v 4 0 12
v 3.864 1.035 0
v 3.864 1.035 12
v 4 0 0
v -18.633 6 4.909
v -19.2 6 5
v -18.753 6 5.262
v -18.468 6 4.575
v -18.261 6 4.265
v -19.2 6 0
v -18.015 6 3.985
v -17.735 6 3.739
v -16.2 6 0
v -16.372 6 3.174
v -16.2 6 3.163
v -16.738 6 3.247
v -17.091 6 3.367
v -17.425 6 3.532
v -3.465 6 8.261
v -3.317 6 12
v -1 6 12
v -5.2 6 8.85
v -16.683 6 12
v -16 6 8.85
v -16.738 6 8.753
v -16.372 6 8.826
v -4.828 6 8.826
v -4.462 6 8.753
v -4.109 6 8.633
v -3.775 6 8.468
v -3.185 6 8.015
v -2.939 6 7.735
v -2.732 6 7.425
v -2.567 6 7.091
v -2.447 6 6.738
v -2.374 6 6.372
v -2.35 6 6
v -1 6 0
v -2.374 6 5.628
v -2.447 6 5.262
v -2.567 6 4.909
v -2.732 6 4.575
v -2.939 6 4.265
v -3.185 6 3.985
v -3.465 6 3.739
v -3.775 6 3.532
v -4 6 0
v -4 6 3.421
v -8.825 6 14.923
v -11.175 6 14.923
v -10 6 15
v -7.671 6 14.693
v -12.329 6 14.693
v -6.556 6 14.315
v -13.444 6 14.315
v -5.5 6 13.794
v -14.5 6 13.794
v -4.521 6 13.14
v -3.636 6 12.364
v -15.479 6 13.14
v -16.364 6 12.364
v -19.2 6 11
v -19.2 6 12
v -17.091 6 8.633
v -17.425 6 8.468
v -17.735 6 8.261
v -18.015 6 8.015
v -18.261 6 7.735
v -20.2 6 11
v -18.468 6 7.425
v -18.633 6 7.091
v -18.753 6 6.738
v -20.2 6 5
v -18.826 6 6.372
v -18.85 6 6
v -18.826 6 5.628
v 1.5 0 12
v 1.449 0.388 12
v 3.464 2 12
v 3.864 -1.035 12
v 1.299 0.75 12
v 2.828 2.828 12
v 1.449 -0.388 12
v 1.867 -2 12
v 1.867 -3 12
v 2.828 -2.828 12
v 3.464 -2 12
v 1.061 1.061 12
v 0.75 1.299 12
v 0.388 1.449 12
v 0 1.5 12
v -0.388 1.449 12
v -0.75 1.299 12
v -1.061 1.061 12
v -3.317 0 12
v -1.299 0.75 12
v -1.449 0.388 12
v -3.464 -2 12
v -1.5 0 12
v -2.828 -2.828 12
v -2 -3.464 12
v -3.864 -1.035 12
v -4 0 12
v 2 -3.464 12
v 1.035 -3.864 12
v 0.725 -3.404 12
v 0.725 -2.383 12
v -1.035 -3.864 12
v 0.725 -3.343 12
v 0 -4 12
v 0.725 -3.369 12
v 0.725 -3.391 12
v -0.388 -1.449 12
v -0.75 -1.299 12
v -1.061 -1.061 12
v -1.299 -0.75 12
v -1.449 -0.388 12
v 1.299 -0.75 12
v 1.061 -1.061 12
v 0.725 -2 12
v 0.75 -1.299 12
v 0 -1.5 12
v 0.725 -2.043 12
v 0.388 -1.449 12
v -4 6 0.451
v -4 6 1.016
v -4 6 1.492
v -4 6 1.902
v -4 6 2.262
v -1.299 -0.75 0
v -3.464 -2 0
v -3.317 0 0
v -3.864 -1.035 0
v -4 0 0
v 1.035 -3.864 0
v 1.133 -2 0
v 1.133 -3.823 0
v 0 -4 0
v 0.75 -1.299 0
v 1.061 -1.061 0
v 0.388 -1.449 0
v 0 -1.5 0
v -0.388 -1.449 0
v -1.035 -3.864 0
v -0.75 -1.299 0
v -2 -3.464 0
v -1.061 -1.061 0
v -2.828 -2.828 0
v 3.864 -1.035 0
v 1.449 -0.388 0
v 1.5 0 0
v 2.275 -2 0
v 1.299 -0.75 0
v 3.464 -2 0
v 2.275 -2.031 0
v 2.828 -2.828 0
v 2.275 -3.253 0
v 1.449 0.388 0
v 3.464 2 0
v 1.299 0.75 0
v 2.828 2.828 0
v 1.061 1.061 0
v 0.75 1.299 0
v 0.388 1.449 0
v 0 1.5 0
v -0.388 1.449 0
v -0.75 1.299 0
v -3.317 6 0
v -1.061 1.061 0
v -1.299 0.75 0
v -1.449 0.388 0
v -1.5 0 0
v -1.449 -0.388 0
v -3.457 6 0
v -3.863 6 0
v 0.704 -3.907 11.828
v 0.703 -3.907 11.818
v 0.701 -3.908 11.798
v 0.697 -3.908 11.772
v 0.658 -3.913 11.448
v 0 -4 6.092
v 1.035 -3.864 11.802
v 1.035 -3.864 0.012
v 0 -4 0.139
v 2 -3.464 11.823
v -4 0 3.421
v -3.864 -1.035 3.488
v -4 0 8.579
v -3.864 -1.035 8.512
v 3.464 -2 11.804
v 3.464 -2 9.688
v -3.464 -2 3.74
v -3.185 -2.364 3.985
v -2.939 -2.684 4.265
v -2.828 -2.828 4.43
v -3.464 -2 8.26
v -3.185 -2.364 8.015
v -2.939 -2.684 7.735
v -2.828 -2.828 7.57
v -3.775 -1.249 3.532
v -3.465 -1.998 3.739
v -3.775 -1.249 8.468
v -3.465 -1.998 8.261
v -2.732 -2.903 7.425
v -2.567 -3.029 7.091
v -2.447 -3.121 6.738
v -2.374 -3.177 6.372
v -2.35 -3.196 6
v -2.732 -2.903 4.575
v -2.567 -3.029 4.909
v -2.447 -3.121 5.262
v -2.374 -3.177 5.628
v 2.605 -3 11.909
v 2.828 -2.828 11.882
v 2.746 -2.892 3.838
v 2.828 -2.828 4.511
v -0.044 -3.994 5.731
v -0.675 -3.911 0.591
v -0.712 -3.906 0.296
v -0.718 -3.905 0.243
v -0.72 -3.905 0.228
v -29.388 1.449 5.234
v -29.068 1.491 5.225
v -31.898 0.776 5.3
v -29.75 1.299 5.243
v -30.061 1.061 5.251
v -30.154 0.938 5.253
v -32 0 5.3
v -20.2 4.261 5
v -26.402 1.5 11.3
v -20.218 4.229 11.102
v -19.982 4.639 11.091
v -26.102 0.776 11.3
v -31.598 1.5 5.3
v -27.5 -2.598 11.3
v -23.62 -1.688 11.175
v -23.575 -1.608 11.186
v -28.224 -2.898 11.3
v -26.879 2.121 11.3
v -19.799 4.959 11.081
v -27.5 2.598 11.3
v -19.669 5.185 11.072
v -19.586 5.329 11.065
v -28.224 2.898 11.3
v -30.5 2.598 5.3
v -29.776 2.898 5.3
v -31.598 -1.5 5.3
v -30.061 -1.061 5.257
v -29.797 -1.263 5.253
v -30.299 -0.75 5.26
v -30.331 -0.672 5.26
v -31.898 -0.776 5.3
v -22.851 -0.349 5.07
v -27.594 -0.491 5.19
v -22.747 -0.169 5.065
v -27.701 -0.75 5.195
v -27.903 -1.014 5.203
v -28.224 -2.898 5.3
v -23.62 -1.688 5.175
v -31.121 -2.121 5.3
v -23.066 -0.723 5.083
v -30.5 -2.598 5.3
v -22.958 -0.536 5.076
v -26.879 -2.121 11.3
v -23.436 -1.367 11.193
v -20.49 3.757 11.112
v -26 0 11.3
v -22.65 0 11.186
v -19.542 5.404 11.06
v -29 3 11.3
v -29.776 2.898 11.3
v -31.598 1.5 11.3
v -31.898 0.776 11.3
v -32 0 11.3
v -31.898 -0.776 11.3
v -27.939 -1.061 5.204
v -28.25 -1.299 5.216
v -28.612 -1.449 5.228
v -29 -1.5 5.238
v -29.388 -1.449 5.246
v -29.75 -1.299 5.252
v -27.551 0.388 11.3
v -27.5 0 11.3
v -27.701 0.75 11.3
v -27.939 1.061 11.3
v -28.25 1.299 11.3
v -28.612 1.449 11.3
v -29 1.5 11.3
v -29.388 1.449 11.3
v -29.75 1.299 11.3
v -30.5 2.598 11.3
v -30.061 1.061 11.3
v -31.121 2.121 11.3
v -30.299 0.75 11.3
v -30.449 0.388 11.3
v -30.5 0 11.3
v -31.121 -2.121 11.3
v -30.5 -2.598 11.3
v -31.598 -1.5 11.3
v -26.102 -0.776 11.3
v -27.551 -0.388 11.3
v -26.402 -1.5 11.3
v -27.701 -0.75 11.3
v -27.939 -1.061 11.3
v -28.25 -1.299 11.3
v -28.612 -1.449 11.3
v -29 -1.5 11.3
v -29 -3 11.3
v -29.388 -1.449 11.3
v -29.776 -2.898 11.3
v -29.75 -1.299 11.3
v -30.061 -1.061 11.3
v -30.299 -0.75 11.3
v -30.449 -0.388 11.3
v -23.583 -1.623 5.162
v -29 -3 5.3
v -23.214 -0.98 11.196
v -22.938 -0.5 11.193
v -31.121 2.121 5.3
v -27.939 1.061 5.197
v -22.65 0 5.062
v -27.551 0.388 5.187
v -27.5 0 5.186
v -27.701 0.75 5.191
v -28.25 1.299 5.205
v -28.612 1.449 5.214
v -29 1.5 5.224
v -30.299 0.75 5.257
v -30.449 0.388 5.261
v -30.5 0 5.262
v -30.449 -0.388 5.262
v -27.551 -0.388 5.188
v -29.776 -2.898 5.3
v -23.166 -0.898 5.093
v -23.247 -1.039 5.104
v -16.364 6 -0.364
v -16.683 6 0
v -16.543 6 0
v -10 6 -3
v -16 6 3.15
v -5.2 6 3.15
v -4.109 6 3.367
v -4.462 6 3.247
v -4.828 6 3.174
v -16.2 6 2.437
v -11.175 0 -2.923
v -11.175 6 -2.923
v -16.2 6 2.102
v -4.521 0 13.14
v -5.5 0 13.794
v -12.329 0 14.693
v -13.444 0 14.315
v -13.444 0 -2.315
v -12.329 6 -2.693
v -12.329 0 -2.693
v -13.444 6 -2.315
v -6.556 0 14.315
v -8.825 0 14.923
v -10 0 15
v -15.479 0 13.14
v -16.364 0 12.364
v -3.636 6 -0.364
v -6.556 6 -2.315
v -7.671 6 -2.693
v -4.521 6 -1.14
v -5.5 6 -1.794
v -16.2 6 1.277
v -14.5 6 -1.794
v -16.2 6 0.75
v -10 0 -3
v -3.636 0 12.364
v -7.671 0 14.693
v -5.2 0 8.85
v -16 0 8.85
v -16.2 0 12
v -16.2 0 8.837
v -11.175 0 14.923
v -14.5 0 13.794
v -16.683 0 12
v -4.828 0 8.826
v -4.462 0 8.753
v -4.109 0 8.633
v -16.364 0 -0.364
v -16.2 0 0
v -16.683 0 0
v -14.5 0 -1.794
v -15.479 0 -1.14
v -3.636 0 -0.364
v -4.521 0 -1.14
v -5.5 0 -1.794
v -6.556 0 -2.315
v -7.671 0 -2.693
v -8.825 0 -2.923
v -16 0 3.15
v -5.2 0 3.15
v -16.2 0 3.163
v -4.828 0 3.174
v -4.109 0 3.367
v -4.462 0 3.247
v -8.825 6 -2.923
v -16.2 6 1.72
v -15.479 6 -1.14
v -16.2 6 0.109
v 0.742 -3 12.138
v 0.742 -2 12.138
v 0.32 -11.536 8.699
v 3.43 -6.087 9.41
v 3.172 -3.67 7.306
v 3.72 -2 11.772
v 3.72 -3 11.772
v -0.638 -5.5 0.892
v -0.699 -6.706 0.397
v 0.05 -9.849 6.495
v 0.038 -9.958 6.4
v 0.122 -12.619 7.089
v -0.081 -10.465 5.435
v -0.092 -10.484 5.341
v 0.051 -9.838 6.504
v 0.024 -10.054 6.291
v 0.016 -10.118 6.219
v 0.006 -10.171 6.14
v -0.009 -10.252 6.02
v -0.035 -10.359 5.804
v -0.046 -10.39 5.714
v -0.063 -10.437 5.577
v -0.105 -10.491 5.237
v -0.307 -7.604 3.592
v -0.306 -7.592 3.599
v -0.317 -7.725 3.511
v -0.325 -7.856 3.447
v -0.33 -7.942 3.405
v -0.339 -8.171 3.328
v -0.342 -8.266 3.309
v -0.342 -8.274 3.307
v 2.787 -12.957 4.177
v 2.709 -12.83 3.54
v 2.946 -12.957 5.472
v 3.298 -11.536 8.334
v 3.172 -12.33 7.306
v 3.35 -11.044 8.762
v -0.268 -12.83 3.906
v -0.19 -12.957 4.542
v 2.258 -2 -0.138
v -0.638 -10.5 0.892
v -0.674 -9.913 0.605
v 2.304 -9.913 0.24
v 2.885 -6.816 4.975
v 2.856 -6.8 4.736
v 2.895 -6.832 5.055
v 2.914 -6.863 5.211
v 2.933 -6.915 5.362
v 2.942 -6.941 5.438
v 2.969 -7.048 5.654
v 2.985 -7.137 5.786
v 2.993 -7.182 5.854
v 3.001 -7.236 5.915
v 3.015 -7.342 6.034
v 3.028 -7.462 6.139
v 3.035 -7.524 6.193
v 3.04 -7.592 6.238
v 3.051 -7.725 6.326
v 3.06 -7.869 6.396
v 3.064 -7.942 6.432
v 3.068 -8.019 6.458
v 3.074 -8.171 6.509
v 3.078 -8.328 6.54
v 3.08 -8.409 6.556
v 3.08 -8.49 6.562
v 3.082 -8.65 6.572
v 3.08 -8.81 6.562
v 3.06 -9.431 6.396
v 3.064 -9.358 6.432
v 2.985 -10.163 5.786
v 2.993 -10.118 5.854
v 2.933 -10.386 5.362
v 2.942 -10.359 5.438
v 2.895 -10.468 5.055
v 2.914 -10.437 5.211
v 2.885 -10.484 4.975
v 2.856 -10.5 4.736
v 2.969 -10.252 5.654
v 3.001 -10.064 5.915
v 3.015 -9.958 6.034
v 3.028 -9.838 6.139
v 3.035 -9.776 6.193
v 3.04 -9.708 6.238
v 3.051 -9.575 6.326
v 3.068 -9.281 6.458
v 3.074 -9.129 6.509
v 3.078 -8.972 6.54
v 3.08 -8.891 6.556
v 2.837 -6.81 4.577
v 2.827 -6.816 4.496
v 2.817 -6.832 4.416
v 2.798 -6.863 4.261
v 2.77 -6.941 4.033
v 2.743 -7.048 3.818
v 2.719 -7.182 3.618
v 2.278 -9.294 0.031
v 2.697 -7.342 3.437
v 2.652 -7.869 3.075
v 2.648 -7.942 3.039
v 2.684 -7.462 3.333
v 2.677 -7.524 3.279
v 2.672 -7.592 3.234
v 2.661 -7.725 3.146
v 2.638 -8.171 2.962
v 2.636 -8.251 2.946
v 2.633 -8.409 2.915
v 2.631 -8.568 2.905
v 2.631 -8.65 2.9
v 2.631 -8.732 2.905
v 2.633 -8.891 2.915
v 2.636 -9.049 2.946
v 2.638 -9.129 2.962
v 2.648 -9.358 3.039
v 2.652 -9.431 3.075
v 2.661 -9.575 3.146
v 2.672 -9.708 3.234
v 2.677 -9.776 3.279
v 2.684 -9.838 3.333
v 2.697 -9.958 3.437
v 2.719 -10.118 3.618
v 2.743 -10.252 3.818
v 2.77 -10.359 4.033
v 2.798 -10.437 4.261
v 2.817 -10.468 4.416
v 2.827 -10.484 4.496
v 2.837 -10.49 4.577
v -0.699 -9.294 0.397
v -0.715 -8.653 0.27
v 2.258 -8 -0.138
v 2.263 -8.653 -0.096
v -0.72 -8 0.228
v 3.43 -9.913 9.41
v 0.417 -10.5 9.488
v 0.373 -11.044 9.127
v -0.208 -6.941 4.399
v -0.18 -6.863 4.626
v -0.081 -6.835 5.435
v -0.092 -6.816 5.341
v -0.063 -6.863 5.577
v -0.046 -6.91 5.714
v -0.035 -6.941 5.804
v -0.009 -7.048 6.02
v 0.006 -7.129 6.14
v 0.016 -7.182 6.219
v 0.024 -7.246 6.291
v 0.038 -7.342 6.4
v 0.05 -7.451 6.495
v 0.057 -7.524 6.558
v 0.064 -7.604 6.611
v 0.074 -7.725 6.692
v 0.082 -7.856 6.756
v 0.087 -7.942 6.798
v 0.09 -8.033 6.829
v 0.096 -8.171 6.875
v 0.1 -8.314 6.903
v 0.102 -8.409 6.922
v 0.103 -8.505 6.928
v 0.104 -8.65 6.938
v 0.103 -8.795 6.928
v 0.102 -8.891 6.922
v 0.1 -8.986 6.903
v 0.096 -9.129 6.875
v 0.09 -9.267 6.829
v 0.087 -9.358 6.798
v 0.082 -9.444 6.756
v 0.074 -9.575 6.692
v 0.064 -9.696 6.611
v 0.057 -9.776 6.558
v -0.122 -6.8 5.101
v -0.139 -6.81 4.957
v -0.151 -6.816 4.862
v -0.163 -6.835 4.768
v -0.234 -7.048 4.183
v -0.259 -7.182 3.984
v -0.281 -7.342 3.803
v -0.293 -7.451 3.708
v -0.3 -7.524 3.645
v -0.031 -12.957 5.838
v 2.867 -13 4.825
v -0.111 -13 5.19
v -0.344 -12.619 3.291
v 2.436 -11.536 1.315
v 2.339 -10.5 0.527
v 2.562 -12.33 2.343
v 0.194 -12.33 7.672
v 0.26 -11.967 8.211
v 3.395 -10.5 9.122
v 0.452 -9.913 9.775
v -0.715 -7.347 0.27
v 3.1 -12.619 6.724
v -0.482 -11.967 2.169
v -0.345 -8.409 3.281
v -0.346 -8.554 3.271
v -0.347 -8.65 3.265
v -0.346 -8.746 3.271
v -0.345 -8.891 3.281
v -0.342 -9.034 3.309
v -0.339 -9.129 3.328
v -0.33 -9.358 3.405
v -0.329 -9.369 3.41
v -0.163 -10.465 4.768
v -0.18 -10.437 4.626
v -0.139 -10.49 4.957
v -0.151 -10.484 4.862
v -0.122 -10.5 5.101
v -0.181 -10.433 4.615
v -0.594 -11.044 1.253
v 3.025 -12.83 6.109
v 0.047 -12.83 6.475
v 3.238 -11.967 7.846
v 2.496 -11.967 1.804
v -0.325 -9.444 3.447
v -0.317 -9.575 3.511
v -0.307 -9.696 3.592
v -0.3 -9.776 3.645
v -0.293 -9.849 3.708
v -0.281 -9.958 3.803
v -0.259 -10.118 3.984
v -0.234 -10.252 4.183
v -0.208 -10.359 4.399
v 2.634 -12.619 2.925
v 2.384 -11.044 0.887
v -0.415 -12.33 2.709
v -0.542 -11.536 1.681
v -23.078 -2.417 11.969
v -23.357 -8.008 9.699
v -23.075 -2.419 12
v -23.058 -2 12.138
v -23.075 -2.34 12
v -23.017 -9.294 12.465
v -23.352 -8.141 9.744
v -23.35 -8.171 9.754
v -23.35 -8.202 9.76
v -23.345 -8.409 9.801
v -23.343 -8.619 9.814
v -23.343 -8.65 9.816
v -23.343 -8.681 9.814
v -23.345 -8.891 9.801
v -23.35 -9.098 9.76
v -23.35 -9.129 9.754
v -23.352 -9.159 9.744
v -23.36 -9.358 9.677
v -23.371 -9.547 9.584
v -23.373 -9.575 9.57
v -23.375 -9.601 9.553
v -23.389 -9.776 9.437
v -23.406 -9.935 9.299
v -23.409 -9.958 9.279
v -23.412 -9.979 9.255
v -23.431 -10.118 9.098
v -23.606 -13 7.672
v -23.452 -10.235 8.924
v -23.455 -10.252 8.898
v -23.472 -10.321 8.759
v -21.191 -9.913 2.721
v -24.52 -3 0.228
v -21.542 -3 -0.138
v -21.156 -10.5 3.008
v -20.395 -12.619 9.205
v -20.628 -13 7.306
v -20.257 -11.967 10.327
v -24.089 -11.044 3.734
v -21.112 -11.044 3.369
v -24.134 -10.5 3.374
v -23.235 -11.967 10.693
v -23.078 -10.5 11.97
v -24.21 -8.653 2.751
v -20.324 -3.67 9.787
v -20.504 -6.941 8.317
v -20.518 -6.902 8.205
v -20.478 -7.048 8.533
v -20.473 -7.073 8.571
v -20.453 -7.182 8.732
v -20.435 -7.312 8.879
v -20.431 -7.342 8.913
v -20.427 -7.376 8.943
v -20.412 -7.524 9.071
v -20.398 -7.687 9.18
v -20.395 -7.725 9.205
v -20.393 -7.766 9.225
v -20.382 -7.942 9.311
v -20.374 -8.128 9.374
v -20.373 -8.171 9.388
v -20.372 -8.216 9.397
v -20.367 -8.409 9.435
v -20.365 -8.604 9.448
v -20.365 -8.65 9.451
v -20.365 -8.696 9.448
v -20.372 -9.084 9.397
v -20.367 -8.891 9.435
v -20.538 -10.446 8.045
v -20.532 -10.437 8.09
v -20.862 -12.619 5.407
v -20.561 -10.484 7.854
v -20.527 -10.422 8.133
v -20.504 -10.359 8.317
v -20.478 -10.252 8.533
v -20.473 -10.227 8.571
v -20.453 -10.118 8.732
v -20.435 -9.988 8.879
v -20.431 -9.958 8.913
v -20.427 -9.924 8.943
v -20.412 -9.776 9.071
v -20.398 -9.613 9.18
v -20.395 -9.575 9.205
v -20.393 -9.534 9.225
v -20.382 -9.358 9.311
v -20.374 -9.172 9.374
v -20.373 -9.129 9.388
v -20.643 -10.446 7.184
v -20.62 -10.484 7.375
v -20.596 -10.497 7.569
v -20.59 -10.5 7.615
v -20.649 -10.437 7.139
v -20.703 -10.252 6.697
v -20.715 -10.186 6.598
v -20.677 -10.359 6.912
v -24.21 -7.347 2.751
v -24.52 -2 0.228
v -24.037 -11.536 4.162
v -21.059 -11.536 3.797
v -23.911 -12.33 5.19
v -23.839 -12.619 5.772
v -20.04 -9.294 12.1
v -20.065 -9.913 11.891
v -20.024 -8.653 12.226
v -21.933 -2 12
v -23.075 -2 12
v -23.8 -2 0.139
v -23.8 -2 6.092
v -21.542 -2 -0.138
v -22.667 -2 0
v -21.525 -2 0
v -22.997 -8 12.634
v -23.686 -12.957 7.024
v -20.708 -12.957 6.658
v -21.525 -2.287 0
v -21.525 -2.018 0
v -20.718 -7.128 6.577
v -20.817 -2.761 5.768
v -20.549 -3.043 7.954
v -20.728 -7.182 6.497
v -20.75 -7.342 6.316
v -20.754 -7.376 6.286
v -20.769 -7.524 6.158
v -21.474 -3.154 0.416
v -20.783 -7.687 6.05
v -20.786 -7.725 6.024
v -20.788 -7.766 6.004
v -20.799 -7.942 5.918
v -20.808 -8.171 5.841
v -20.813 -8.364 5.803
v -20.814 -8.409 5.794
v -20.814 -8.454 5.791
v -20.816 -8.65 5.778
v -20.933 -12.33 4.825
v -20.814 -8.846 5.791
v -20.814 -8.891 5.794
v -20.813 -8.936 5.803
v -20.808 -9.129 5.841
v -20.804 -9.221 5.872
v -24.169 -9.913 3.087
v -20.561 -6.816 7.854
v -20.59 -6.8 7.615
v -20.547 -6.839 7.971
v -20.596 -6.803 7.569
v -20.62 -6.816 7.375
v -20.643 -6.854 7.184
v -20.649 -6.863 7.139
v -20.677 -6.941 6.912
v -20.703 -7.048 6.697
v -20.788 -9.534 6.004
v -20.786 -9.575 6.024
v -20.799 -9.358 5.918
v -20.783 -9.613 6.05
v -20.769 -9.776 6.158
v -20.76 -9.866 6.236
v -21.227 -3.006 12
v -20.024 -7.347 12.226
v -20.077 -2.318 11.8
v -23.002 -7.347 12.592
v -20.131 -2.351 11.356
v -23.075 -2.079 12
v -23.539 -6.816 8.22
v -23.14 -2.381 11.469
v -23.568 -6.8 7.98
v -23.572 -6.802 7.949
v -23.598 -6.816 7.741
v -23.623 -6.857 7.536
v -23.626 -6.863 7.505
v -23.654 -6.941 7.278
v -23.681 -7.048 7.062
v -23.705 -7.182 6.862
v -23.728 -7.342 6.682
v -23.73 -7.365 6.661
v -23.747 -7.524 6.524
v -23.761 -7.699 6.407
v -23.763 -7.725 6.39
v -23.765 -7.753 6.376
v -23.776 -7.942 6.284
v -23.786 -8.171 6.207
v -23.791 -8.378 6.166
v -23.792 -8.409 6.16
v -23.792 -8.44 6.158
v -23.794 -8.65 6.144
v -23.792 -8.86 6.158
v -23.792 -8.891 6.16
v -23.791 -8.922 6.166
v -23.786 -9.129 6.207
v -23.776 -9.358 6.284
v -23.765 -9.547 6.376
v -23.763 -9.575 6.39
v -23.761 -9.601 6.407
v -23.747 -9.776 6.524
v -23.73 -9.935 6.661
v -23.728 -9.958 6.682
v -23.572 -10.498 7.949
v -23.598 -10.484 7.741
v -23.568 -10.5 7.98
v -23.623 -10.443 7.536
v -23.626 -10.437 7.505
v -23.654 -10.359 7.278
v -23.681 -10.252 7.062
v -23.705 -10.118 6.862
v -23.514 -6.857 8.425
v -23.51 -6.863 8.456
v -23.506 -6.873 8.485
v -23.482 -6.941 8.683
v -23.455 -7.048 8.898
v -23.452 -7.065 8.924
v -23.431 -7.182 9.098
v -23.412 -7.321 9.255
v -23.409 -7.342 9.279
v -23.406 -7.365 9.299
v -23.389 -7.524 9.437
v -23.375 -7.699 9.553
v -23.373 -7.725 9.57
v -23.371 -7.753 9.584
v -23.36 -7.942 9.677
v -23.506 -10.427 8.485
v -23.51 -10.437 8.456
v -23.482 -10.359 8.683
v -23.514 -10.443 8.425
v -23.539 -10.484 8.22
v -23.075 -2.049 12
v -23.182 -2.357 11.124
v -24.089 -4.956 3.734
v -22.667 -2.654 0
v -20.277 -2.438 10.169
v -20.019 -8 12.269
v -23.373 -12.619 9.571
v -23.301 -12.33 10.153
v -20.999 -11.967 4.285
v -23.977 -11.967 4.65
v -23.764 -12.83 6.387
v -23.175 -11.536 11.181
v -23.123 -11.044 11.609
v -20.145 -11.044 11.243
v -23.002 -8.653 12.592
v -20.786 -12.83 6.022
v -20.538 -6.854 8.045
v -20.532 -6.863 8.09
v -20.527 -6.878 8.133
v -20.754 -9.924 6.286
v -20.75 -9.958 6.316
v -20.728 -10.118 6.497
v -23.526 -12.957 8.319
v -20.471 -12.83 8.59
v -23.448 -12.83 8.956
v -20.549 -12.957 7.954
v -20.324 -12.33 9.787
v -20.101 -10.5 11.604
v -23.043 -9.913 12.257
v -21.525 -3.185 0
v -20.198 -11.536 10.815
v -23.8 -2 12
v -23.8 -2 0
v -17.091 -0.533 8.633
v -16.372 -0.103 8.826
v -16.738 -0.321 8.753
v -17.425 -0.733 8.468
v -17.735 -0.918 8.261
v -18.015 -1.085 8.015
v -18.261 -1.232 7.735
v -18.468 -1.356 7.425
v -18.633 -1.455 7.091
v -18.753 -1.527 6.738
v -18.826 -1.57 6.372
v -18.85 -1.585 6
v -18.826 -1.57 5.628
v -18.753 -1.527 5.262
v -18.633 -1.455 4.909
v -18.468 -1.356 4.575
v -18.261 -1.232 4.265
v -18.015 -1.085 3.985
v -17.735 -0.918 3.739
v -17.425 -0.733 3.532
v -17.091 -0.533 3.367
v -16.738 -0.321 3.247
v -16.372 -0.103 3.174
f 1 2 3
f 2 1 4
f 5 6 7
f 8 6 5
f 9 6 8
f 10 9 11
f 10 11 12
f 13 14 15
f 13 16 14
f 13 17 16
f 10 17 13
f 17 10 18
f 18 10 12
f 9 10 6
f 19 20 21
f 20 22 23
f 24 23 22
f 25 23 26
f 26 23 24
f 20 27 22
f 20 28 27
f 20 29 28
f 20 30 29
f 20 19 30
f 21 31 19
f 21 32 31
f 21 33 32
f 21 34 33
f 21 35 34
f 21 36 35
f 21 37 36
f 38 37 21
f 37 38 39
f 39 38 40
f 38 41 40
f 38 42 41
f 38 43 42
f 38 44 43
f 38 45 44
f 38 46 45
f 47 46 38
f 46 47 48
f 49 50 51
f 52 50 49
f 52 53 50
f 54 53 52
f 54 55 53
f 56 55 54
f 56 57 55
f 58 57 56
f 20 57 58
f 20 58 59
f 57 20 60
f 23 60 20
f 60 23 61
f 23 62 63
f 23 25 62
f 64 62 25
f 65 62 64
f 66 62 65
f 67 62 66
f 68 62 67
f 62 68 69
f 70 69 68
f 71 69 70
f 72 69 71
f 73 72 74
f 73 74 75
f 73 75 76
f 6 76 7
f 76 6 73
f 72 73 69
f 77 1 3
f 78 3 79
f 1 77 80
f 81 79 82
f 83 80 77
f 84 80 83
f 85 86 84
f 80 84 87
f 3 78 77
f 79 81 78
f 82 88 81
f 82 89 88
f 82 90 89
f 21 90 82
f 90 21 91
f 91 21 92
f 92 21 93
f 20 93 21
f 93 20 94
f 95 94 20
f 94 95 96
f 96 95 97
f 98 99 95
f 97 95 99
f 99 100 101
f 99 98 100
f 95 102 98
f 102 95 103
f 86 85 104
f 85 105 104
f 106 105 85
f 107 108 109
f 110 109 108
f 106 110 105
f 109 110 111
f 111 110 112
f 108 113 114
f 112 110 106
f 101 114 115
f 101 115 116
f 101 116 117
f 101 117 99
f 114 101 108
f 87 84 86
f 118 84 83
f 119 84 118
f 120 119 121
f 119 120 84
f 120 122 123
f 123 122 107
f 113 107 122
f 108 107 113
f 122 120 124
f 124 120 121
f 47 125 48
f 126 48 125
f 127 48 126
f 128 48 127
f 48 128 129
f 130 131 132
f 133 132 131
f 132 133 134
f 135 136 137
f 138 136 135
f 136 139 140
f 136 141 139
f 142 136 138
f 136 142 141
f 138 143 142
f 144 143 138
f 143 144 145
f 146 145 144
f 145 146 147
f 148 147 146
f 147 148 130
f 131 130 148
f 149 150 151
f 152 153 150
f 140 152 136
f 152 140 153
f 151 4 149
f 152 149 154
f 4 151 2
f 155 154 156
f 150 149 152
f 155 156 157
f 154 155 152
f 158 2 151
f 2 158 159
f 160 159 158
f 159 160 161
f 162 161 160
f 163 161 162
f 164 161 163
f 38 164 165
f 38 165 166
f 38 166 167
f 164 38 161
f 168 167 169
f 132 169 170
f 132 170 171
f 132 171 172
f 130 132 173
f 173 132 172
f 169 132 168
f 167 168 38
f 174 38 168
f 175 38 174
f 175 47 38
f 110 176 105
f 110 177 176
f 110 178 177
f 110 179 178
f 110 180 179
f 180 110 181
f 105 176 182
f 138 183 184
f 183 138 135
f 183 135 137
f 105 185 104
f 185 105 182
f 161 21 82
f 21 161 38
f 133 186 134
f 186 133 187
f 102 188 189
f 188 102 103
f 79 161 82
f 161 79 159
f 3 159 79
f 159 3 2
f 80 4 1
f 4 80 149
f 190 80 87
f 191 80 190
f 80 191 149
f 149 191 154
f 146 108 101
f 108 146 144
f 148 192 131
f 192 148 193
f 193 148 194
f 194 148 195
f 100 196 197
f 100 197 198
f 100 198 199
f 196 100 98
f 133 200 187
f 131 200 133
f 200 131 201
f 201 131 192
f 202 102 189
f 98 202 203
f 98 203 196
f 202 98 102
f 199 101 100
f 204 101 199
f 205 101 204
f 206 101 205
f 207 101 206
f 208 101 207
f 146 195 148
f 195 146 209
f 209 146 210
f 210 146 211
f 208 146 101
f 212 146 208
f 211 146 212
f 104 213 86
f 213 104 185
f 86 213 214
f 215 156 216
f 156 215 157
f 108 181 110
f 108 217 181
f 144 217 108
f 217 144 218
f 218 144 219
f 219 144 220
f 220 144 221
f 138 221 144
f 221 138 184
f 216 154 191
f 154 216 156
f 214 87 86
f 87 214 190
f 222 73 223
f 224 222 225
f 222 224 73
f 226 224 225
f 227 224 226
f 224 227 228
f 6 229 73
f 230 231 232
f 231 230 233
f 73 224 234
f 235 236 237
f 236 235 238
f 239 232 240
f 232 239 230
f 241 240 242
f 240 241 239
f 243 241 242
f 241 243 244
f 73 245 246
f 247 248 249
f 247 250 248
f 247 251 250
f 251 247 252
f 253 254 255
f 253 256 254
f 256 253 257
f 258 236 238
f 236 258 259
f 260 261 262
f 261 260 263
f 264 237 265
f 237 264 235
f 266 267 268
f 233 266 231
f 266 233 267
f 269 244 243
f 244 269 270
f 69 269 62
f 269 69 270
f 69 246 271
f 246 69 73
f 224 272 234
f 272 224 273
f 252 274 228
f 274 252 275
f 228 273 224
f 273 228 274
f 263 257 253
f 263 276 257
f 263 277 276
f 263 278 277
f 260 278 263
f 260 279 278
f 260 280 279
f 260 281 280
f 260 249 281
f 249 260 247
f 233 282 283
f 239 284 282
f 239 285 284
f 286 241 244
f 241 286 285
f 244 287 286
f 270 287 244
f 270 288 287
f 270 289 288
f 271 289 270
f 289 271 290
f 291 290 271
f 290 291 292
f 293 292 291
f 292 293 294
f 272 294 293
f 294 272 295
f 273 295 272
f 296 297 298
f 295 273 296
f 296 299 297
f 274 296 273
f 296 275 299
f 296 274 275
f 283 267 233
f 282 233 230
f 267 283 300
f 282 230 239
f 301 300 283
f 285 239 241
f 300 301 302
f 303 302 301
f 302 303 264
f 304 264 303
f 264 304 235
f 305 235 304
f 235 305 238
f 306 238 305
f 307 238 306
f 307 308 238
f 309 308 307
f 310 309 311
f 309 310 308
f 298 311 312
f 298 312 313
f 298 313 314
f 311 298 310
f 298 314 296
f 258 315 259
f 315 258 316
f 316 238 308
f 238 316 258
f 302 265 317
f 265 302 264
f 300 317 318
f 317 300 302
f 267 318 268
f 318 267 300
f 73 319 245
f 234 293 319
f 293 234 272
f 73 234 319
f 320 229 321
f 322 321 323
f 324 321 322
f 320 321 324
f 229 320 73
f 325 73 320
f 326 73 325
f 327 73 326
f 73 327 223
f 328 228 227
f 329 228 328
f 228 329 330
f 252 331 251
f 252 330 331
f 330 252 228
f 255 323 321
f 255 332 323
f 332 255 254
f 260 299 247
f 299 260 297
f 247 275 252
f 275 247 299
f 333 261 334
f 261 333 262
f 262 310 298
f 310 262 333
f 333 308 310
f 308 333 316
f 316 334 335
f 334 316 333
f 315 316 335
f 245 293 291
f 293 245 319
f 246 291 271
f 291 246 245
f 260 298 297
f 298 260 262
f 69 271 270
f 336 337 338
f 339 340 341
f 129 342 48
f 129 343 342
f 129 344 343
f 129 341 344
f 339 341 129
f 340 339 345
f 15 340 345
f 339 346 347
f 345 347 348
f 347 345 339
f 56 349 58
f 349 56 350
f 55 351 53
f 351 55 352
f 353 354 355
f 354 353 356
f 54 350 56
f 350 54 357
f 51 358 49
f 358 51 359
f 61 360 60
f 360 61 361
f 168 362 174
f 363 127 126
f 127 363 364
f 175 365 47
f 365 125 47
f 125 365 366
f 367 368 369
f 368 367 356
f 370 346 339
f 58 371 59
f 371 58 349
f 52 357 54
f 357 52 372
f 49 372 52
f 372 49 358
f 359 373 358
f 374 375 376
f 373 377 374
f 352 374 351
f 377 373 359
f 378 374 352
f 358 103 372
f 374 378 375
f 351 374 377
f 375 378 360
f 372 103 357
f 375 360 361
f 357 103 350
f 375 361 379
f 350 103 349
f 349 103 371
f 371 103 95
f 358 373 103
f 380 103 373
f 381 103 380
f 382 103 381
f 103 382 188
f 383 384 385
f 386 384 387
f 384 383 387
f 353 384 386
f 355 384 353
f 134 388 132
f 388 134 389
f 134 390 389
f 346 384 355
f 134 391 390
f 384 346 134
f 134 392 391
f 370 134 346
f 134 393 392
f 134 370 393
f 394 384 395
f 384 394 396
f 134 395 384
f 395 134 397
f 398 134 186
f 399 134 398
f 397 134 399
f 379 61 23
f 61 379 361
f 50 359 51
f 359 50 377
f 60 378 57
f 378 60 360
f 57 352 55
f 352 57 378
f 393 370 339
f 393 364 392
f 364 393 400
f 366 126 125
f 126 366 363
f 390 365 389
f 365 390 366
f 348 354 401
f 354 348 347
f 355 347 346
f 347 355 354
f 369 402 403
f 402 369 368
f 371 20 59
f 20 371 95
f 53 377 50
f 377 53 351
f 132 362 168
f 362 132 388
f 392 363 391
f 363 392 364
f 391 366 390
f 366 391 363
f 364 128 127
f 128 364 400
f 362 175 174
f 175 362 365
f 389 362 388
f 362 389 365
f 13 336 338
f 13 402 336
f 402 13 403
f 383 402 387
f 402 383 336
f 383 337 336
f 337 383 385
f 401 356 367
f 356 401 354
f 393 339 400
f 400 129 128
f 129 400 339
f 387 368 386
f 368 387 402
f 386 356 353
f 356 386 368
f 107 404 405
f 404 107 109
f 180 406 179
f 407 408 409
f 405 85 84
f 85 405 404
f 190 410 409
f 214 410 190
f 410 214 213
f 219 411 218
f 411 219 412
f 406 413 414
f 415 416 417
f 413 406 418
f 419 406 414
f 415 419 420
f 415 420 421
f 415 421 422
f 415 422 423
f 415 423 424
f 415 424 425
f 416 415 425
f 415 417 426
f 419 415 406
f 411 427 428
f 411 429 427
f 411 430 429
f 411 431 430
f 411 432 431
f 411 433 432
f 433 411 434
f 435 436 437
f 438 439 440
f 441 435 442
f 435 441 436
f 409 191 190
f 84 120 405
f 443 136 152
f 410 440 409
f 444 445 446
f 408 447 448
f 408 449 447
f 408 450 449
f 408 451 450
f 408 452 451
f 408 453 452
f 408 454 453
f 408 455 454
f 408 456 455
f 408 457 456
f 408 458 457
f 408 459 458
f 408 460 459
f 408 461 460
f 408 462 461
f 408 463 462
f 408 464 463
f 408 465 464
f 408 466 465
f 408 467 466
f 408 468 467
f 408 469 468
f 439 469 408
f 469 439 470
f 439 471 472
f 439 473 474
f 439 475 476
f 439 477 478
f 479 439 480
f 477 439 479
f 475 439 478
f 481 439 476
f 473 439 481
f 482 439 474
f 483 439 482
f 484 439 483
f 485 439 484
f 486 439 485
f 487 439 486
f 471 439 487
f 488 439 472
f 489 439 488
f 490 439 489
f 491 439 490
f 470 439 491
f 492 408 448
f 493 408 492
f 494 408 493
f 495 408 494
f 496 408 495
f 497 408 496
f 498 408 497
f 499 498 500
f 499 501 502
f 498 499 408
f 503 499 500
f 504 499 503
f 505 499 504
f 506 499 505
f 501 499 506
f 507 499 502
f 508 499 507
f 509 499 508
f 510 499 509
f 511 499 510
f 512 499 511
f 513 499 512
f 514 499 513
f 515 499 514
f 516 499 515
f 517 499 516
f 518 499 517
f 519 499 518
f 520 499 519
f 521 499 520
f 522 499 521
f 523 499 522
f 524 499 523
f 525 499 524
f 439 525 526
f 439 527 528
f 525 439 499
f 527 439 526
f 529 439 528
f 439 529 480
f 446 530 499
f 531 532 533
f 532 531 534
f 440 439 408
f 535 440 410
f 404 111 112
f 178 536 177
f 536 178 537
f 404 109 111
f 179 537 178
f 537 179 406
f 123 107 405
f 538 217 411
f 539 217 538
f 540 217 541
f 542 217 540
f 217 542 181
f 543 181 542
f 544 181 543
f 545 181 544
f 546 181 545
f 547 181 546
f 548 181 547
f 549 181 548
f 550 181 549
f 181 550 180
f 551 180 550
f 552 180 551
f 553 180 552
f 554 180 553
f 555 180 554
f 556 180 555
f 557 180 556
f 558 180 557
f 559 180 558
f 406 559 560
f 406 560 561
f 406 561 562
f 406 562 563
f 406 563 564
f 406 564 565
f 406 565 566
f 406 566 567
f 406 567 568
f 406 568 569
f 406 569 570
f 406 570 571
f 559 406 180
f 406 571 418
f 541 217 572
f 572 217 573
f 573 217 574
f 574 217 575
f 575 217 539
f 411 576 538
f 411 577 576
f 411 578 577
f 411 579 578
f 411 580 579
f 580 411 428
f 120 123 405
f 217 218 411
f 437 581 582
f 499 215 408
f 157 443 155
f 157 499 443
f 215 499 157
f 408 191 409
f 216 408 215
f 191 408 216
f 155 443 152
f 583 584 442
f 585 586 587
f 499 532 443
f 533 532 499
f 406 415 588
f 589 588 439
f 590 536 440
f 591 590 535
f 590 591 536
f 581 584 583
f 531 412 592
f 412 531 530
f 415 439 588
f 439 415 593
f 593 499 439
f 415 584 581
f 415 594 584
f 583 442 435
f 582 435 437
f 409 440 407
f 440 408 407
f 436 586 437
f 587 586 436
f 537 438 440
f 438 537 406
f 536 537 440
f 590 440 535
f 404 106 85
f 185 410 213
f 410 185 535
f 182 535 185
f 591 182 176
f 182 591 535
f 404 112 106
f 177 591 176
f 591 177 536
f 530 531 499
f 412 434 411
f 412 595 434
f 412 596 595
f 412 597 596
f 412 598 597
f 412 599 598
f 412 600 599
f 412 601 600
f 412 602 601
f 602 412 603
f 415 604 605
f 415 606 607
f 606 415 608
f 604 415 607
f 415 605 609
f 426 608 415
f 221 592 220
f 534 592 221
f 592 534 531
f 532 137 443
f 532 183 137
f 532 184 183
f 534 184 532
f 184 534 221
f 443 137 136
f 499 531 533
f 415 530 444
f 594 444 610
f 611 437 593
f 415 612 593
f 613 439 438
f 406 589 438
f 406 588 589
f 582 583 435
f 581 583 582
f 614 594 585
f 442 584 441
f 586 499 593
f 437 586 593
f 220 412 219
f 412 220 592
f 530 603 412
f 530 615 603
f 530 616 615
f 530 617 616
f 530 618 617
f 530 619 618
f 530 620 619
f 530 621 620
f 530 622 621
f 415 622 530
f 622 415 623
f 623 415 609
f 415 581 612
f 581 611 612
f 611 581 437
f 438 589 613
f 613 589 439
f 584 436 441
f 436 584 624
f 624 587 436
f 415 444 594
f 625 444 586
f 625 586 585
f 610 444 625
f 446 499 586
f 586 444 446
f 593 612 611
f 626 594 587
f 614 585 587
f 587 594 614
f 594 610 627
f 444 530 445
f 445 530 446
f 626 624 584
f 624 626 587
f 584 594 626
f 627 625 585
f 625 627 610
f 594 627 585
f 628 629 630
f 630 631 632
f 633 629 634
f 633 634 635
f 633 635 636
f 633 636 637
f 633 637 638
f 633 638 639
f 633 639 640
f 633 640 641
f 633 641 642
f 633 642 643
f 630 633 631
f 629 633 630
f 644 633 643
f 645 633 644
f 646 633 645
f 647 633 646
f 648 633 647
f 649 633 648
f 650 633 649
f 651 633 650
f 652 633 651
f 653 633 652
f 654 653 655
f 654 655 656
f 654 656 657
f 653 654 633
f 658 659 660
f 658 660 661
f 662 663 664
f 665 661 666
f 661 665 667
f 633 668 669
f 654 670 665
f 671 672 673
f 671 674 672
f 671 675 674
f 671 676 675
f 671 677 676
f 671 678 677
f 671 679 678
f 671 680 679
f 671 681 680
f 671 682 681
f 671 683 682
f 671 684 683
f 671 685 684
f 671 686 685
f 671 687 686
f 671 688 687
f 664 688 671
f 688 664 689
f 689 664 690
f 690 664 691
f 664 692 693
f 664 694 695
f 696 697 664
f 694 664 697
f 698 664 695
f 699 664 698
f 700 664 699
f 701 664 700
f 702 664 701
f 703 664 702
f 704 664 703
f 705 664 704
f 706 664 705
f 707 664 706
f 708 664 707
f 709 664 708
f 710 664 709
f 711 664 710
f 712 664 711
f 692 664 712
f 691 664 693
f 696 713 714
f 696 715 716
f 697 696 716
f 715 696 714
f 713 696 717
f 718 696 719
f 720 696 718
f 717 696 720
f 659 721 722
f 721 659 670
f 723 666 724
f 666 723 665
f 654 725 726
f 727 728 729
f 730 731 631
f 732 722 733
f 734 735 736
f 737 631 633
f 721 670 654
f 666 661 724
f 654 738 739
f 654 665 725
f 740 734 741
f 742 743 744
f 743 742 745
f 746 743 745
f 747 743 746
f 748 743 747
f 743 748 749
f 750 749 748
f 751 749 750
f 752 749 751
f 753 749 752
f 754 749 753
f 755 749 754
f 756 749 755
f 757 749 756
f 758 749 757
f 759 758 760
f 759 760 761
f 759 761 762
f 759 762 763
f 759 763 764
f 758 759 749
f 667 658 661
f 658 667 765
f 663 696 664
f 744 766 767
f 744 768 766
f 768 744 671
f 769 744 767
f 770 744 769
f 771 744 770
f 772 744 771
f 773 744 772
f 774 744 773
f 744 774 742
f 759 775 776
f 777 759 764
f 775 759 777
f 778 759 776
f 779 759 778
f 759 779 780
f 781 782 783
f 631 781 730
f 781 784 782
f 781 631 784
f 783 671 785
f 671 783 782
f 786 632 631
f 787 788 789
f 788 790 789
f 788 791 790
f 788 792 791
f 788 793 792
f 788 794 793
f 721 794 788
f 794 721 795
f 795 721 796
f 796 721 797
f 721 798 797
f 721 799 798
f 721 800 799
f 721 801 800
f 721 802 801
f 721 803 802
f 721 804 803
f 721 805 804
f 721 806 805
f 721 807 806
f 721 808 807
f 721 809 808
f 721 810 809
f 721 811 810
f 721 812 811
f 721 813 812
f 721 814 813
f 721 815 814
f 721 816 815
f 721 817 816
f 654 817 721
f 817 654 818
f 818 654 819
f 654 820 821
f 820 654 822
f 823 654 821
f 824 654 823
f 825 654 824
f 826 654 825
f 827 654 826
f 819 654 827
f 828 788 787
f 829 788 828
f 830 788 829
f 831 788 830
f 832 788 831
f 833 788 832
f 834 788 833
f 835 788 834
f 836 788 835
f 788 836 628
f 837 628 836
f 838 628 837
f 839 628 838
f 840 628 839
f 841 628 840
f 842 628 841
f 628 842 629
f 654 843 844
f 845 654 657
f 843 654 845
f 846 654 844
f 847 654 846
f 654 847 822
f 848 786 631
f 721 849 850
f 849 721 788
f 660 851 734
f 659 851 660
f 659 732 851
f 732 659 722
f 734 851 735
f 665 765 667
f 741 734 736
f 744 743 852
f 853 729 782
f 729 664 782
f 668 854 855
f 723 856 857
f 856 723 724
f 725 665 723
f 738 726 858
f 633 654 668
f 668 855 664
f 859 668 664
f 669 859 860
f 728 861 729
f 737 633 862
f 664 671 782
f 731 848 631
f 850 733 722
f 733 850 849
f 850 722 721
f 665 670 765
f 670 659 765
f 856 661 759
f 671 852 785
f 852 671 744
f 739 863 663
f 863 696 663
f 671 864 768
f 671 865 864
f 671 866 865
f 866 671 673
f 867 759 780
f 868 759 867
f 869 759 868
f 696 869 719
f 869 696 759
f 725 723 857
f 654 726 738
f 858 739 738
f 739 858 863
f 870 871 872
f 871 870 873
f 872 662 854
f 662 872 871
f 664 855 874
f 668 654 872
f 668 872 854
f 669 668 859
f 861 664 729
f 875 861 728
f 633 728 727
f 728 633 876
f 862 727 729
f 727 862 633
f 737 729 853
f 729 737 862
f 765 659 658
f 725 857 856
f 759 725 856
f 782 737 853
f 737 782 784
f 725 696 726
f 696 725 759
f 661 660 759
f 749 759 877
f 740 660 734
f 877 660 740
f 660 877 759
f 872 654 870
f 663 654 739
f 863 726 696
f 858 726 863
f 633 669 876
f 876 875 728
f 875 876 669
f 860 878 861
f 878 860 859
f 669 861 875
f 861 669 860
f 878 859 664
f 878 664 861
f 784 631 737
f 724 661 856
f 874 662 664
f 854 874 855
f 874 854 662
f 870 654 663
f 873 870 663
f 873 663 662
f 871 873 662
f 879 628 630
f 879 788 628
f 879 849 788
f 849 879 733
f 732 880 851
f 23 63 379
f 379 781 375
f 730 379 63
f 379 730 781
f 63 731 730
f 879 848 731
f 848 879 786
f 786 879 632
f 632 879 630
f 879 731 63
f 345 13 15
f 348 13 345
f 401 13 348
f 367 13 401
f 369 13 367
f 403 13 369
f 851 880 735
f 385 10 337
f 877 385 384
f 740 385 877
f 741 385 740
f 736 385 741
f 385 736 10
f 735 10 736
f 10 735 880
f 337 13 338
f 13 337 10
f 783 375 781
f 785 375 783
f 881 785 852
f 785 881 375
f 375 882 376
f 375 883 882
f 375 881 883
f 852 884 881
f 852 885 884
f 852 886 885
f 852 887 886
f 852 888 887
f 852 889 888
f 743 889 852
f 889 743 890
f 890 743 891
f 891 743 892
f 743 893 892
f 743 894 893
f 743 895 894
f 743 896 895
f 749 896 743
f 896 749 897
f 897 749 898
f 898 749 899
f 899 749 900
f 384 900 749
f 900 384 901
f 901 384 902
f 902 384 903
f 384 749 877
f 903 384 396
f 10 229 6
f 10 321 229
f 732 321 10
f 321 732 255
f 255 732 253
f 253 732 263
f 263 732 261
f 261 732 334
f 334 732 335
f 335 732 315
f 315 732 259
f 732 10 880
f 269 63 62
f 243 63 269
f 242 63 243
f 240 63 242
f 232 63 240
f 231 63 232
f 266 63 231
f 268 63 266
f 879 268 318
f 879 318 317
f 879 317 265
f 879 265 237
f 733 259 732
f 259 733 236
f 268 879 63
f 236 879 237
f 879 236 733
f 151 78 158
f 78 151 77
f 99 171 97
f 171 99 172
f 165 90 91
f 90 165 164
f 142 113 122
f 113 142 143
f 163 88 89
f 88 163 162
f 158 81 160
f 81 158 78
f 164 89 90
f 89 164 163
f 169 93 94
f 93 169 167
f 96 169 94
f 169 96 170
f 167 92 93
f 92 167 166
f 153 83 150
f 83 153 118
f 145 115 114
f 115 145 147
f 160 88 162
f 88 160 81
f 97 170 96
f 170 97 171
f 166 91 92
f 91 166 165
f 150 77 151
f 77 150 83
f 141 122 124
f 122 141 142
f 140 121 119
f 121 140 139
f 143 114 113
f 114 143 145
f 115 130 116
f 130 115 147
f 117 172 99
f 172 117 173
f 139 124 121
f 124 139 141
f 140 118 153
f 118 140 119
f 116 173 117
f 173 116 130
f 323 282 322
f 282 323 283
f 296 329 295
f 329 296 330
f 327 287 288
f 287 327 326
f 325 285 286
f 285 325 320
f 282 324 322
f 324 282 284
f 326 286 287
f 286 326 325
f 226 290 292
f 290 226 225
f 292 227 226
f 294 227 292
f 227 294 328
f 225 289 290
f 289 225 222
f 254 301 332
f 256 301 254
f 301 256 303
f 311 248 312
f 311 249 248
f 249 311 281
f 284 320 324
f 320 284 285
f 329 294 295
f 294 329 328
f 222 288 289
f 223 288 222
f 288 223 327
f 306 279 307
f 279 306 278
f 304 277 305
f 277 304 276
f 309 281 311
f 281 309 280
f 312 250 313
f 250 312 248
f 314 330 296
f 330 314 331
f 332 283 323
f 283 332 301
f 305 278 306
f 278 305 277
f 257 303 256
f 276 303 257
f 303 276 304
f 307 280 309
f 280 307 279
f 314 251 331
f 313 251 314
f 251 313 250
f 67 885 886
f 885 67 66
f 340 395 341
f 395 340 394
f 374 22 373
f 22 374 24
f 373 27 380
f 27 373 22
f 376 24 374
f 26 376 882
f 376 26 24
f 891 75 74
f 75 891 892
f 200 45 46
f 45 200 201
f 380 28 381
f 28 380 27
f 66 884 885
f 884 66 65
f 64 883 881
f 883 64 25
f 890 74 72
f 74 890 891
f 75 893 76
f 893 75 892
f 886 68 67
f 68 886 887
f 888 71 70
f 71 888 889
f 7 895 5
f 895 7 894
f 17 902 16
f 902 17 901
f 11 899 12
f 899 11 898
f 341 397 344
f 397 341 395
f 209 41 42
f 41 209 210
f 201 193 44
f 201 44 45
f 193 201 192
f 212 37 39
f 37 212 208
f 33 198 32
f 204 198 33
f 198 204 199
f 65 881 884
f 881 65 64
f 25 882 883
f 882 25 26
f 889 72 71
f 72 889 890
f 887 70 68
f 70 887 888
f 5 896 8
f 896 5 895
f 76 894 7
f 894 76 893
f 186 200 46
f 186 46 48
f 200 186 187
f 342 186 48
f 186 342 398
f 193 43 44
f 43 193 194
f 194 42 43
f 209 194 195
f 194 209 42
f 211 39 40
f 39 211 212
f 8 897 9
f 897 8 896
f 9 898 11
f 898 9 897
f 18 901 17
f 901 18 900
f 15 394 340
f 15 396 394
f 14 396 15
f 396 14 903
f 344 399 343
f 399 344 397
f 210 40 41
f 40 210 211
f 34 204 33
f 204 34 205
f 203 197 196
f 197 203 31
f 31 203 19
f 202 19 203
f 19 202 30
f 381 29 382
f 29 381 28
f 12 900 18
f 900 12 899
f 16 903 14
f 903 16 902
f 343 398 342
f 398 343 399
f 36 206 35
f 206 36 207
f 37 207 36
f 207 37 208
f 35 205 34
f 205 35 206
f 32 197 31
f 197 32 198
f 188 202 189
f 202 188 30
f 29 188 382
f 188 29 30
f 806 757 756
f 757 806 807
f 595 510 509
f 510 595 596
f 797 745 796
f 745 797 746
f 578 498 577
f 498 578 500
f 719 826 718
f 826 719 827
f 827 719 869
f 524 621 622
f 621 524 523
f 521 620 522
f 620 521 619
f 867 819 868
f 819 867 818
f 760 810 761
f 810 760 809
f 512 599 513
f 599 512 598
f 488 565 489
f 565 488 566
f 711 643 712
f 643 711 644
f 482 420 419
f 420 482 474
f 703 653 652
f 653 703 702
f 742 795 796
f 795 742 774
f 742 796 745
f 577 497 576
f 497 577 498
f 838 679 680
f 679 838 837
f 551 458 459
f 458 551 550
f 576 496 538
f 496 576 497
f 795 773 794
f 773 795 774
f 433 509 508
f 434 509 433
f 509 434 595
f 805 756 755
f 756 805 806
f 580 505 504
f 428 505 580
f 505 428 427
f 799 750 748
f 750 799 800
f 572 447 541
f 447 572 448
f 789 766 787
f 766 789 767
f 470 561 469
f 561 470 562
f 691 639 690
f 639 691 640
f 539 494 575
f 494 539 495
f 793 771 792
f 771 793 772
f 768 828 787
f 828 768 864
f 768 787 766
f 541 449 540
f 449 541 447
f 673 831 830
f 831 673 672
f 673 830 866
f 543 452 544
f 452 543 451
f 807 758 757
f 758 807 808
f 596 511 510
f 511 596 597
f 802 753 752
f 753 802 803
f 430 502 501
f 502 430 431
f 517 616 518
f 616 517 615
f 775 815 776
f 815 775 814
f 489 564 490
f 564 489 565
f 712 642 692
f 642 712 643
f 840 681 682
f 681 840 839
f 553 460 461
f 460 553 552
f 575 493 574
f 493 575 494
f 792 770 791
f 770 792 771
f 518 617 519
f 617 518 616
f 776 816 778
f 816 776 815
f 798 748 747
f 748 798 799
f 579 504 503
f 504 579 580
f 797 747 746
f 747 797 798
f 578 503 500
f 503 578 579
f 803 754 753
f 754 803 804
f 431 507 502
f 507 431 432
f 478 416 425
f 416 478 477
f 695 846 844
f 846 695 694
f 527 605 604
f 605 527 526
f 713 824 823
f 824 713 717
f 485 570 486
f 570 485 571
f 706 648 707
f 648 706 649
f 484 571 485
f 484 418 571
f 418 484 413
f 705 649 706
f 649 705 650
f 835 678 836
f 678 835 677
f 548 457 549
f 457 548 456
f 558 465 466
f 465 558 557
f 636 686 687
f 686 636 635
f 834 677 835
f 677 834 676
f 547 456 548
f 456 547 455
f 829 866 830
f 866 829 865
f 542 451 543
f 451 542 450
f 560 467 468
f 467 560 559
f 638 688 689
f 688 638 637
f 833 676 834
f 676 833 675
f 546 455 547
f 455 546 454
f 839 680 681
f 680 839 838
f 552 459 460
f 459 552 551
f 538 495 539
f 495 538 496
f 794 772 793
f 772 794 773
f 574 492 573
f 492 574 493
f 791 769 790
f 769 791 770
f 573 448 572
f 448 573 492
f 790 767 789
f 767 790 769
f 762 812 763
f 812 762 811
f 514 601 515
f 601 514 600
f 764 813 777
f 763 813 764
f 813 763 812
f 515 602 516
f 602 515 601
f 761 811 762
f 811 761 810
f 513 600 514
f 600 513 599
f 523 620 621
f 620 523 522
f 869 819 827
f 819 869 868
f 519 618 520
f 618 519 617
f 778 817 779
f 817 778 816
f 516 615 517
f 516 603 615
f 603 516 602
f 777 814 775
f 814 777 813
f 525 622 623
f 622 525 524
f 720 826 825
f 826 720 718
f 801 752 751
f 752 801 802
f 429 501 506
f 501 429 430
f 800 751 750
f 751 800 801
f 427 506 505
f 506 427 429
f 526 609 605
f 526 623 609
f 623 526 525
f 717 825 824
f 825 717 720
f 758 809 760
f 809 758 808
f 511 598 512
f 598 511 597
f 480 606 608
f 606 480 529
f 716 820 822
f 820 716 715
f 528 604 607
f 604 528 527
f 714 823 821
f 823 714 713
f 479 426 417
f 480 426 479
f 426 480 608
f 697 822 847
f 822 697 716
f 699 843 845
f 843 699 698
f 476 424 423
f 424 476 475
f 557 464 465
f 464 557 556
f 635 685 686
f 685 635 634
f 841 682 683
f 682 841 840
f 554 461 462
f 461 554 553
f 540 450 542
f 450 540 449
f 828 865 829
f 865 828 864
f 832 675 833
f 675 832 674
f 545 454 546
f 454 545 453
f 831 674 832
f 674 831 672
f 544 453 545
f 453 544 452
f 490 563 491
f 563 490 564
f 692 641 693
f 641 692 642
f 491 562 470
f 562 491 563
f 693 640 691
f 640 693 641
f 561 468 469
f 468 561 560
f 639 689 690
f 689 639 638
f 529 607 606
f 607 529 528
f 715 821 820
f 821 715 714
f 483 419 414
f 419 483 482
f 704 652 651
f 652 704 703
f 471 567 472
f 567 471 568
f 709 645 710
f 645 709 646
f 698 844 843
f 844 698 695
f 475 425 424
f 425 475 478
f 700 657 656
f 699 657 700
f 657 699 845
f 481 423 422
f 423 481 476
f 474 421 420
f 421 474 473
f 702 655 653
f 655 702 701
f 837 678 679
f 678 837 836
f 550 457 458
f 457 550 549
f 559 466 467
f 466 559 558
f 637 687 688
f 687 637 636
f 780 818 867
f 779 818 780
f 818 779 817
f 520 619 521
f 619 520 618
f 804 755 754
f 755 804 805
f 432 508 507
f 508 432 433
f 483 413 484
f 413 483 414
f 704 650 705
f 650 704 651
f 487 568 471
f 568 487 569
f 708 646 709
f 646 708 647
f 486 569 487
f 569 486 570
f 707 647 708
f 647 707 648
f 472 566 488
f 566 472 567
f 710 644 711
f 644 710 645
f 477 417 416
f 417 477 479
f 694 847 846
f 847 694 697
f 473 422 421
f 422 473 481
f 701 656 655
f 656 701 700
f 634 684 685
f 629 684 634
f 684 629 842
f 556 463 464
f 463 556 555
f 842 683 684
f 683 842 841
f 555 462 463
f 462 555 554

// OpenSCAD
$fn=48;
anguloenduda=7;
difference(){
    union(){
        hull(){
            cylinder(r=4,h=12,$fn=24);
            translate([-4,2,0])cube([3,4,12]);
        }
        translate([-29,0,6-0.7])
        hull(){
            cylinder(r=3,h=6,$fn=24);

            translate([-20.2+29,0,5-(6-0.7)])cube([3,6,6]);
        }

        translate([-10,6,6])rotate([90,0,0])cylinder(r=18/2,h=6);

        translate([0,-8,0]){
            translate([1.5,0,6])
            rotate([0,anguloenduda,0])
            translate([-1.5,0,-6])
            hull(){
                translate([0,5,0])cube([3,1,12]);
                rotate([90,0,-90])translate([0,5,-3])cylinder(r=10/2,h=3);
            }
        }
        translate([-26.8+3,-8,0]){
            translate([1.5,0,6])
            rotate([0,anguloenduda,0])
            translate([-1.5,0,-6])
            hull(){
                translate([0,5,0])cube([3,1,12]);
                rotate([90,0,-90])translate([0,7.5,-3])cylinder(r=10/2,h=3);
            }
        }

        hull(){
            translate([-23.8,-2,0])rotate([0,0,-30])cube([2.5,9.2,12]);
            translate([-19.2,0,0])cube([3,6,12]);
        }
    }
    translate([0,0,-2])cylinder(r=1.5,h=15,$fn=24);
    translate([-29,0,-2])cylinder(r=1.5,h=15,$fn=24);
    translate([-14-2,8,6]){
        rotate([90,0,0])
        hull(){
            cylinder(r=5.7/2,h=20);
            translate([16.5-5.7,0,0])cylinder(r=5.7/2,h=20);
        }
    }
    translate([-30,-11.15+2.5,5.77+3])rotate([0,90+anguloenduda,0])cylinder(r=3.7/2,h=50);
}
